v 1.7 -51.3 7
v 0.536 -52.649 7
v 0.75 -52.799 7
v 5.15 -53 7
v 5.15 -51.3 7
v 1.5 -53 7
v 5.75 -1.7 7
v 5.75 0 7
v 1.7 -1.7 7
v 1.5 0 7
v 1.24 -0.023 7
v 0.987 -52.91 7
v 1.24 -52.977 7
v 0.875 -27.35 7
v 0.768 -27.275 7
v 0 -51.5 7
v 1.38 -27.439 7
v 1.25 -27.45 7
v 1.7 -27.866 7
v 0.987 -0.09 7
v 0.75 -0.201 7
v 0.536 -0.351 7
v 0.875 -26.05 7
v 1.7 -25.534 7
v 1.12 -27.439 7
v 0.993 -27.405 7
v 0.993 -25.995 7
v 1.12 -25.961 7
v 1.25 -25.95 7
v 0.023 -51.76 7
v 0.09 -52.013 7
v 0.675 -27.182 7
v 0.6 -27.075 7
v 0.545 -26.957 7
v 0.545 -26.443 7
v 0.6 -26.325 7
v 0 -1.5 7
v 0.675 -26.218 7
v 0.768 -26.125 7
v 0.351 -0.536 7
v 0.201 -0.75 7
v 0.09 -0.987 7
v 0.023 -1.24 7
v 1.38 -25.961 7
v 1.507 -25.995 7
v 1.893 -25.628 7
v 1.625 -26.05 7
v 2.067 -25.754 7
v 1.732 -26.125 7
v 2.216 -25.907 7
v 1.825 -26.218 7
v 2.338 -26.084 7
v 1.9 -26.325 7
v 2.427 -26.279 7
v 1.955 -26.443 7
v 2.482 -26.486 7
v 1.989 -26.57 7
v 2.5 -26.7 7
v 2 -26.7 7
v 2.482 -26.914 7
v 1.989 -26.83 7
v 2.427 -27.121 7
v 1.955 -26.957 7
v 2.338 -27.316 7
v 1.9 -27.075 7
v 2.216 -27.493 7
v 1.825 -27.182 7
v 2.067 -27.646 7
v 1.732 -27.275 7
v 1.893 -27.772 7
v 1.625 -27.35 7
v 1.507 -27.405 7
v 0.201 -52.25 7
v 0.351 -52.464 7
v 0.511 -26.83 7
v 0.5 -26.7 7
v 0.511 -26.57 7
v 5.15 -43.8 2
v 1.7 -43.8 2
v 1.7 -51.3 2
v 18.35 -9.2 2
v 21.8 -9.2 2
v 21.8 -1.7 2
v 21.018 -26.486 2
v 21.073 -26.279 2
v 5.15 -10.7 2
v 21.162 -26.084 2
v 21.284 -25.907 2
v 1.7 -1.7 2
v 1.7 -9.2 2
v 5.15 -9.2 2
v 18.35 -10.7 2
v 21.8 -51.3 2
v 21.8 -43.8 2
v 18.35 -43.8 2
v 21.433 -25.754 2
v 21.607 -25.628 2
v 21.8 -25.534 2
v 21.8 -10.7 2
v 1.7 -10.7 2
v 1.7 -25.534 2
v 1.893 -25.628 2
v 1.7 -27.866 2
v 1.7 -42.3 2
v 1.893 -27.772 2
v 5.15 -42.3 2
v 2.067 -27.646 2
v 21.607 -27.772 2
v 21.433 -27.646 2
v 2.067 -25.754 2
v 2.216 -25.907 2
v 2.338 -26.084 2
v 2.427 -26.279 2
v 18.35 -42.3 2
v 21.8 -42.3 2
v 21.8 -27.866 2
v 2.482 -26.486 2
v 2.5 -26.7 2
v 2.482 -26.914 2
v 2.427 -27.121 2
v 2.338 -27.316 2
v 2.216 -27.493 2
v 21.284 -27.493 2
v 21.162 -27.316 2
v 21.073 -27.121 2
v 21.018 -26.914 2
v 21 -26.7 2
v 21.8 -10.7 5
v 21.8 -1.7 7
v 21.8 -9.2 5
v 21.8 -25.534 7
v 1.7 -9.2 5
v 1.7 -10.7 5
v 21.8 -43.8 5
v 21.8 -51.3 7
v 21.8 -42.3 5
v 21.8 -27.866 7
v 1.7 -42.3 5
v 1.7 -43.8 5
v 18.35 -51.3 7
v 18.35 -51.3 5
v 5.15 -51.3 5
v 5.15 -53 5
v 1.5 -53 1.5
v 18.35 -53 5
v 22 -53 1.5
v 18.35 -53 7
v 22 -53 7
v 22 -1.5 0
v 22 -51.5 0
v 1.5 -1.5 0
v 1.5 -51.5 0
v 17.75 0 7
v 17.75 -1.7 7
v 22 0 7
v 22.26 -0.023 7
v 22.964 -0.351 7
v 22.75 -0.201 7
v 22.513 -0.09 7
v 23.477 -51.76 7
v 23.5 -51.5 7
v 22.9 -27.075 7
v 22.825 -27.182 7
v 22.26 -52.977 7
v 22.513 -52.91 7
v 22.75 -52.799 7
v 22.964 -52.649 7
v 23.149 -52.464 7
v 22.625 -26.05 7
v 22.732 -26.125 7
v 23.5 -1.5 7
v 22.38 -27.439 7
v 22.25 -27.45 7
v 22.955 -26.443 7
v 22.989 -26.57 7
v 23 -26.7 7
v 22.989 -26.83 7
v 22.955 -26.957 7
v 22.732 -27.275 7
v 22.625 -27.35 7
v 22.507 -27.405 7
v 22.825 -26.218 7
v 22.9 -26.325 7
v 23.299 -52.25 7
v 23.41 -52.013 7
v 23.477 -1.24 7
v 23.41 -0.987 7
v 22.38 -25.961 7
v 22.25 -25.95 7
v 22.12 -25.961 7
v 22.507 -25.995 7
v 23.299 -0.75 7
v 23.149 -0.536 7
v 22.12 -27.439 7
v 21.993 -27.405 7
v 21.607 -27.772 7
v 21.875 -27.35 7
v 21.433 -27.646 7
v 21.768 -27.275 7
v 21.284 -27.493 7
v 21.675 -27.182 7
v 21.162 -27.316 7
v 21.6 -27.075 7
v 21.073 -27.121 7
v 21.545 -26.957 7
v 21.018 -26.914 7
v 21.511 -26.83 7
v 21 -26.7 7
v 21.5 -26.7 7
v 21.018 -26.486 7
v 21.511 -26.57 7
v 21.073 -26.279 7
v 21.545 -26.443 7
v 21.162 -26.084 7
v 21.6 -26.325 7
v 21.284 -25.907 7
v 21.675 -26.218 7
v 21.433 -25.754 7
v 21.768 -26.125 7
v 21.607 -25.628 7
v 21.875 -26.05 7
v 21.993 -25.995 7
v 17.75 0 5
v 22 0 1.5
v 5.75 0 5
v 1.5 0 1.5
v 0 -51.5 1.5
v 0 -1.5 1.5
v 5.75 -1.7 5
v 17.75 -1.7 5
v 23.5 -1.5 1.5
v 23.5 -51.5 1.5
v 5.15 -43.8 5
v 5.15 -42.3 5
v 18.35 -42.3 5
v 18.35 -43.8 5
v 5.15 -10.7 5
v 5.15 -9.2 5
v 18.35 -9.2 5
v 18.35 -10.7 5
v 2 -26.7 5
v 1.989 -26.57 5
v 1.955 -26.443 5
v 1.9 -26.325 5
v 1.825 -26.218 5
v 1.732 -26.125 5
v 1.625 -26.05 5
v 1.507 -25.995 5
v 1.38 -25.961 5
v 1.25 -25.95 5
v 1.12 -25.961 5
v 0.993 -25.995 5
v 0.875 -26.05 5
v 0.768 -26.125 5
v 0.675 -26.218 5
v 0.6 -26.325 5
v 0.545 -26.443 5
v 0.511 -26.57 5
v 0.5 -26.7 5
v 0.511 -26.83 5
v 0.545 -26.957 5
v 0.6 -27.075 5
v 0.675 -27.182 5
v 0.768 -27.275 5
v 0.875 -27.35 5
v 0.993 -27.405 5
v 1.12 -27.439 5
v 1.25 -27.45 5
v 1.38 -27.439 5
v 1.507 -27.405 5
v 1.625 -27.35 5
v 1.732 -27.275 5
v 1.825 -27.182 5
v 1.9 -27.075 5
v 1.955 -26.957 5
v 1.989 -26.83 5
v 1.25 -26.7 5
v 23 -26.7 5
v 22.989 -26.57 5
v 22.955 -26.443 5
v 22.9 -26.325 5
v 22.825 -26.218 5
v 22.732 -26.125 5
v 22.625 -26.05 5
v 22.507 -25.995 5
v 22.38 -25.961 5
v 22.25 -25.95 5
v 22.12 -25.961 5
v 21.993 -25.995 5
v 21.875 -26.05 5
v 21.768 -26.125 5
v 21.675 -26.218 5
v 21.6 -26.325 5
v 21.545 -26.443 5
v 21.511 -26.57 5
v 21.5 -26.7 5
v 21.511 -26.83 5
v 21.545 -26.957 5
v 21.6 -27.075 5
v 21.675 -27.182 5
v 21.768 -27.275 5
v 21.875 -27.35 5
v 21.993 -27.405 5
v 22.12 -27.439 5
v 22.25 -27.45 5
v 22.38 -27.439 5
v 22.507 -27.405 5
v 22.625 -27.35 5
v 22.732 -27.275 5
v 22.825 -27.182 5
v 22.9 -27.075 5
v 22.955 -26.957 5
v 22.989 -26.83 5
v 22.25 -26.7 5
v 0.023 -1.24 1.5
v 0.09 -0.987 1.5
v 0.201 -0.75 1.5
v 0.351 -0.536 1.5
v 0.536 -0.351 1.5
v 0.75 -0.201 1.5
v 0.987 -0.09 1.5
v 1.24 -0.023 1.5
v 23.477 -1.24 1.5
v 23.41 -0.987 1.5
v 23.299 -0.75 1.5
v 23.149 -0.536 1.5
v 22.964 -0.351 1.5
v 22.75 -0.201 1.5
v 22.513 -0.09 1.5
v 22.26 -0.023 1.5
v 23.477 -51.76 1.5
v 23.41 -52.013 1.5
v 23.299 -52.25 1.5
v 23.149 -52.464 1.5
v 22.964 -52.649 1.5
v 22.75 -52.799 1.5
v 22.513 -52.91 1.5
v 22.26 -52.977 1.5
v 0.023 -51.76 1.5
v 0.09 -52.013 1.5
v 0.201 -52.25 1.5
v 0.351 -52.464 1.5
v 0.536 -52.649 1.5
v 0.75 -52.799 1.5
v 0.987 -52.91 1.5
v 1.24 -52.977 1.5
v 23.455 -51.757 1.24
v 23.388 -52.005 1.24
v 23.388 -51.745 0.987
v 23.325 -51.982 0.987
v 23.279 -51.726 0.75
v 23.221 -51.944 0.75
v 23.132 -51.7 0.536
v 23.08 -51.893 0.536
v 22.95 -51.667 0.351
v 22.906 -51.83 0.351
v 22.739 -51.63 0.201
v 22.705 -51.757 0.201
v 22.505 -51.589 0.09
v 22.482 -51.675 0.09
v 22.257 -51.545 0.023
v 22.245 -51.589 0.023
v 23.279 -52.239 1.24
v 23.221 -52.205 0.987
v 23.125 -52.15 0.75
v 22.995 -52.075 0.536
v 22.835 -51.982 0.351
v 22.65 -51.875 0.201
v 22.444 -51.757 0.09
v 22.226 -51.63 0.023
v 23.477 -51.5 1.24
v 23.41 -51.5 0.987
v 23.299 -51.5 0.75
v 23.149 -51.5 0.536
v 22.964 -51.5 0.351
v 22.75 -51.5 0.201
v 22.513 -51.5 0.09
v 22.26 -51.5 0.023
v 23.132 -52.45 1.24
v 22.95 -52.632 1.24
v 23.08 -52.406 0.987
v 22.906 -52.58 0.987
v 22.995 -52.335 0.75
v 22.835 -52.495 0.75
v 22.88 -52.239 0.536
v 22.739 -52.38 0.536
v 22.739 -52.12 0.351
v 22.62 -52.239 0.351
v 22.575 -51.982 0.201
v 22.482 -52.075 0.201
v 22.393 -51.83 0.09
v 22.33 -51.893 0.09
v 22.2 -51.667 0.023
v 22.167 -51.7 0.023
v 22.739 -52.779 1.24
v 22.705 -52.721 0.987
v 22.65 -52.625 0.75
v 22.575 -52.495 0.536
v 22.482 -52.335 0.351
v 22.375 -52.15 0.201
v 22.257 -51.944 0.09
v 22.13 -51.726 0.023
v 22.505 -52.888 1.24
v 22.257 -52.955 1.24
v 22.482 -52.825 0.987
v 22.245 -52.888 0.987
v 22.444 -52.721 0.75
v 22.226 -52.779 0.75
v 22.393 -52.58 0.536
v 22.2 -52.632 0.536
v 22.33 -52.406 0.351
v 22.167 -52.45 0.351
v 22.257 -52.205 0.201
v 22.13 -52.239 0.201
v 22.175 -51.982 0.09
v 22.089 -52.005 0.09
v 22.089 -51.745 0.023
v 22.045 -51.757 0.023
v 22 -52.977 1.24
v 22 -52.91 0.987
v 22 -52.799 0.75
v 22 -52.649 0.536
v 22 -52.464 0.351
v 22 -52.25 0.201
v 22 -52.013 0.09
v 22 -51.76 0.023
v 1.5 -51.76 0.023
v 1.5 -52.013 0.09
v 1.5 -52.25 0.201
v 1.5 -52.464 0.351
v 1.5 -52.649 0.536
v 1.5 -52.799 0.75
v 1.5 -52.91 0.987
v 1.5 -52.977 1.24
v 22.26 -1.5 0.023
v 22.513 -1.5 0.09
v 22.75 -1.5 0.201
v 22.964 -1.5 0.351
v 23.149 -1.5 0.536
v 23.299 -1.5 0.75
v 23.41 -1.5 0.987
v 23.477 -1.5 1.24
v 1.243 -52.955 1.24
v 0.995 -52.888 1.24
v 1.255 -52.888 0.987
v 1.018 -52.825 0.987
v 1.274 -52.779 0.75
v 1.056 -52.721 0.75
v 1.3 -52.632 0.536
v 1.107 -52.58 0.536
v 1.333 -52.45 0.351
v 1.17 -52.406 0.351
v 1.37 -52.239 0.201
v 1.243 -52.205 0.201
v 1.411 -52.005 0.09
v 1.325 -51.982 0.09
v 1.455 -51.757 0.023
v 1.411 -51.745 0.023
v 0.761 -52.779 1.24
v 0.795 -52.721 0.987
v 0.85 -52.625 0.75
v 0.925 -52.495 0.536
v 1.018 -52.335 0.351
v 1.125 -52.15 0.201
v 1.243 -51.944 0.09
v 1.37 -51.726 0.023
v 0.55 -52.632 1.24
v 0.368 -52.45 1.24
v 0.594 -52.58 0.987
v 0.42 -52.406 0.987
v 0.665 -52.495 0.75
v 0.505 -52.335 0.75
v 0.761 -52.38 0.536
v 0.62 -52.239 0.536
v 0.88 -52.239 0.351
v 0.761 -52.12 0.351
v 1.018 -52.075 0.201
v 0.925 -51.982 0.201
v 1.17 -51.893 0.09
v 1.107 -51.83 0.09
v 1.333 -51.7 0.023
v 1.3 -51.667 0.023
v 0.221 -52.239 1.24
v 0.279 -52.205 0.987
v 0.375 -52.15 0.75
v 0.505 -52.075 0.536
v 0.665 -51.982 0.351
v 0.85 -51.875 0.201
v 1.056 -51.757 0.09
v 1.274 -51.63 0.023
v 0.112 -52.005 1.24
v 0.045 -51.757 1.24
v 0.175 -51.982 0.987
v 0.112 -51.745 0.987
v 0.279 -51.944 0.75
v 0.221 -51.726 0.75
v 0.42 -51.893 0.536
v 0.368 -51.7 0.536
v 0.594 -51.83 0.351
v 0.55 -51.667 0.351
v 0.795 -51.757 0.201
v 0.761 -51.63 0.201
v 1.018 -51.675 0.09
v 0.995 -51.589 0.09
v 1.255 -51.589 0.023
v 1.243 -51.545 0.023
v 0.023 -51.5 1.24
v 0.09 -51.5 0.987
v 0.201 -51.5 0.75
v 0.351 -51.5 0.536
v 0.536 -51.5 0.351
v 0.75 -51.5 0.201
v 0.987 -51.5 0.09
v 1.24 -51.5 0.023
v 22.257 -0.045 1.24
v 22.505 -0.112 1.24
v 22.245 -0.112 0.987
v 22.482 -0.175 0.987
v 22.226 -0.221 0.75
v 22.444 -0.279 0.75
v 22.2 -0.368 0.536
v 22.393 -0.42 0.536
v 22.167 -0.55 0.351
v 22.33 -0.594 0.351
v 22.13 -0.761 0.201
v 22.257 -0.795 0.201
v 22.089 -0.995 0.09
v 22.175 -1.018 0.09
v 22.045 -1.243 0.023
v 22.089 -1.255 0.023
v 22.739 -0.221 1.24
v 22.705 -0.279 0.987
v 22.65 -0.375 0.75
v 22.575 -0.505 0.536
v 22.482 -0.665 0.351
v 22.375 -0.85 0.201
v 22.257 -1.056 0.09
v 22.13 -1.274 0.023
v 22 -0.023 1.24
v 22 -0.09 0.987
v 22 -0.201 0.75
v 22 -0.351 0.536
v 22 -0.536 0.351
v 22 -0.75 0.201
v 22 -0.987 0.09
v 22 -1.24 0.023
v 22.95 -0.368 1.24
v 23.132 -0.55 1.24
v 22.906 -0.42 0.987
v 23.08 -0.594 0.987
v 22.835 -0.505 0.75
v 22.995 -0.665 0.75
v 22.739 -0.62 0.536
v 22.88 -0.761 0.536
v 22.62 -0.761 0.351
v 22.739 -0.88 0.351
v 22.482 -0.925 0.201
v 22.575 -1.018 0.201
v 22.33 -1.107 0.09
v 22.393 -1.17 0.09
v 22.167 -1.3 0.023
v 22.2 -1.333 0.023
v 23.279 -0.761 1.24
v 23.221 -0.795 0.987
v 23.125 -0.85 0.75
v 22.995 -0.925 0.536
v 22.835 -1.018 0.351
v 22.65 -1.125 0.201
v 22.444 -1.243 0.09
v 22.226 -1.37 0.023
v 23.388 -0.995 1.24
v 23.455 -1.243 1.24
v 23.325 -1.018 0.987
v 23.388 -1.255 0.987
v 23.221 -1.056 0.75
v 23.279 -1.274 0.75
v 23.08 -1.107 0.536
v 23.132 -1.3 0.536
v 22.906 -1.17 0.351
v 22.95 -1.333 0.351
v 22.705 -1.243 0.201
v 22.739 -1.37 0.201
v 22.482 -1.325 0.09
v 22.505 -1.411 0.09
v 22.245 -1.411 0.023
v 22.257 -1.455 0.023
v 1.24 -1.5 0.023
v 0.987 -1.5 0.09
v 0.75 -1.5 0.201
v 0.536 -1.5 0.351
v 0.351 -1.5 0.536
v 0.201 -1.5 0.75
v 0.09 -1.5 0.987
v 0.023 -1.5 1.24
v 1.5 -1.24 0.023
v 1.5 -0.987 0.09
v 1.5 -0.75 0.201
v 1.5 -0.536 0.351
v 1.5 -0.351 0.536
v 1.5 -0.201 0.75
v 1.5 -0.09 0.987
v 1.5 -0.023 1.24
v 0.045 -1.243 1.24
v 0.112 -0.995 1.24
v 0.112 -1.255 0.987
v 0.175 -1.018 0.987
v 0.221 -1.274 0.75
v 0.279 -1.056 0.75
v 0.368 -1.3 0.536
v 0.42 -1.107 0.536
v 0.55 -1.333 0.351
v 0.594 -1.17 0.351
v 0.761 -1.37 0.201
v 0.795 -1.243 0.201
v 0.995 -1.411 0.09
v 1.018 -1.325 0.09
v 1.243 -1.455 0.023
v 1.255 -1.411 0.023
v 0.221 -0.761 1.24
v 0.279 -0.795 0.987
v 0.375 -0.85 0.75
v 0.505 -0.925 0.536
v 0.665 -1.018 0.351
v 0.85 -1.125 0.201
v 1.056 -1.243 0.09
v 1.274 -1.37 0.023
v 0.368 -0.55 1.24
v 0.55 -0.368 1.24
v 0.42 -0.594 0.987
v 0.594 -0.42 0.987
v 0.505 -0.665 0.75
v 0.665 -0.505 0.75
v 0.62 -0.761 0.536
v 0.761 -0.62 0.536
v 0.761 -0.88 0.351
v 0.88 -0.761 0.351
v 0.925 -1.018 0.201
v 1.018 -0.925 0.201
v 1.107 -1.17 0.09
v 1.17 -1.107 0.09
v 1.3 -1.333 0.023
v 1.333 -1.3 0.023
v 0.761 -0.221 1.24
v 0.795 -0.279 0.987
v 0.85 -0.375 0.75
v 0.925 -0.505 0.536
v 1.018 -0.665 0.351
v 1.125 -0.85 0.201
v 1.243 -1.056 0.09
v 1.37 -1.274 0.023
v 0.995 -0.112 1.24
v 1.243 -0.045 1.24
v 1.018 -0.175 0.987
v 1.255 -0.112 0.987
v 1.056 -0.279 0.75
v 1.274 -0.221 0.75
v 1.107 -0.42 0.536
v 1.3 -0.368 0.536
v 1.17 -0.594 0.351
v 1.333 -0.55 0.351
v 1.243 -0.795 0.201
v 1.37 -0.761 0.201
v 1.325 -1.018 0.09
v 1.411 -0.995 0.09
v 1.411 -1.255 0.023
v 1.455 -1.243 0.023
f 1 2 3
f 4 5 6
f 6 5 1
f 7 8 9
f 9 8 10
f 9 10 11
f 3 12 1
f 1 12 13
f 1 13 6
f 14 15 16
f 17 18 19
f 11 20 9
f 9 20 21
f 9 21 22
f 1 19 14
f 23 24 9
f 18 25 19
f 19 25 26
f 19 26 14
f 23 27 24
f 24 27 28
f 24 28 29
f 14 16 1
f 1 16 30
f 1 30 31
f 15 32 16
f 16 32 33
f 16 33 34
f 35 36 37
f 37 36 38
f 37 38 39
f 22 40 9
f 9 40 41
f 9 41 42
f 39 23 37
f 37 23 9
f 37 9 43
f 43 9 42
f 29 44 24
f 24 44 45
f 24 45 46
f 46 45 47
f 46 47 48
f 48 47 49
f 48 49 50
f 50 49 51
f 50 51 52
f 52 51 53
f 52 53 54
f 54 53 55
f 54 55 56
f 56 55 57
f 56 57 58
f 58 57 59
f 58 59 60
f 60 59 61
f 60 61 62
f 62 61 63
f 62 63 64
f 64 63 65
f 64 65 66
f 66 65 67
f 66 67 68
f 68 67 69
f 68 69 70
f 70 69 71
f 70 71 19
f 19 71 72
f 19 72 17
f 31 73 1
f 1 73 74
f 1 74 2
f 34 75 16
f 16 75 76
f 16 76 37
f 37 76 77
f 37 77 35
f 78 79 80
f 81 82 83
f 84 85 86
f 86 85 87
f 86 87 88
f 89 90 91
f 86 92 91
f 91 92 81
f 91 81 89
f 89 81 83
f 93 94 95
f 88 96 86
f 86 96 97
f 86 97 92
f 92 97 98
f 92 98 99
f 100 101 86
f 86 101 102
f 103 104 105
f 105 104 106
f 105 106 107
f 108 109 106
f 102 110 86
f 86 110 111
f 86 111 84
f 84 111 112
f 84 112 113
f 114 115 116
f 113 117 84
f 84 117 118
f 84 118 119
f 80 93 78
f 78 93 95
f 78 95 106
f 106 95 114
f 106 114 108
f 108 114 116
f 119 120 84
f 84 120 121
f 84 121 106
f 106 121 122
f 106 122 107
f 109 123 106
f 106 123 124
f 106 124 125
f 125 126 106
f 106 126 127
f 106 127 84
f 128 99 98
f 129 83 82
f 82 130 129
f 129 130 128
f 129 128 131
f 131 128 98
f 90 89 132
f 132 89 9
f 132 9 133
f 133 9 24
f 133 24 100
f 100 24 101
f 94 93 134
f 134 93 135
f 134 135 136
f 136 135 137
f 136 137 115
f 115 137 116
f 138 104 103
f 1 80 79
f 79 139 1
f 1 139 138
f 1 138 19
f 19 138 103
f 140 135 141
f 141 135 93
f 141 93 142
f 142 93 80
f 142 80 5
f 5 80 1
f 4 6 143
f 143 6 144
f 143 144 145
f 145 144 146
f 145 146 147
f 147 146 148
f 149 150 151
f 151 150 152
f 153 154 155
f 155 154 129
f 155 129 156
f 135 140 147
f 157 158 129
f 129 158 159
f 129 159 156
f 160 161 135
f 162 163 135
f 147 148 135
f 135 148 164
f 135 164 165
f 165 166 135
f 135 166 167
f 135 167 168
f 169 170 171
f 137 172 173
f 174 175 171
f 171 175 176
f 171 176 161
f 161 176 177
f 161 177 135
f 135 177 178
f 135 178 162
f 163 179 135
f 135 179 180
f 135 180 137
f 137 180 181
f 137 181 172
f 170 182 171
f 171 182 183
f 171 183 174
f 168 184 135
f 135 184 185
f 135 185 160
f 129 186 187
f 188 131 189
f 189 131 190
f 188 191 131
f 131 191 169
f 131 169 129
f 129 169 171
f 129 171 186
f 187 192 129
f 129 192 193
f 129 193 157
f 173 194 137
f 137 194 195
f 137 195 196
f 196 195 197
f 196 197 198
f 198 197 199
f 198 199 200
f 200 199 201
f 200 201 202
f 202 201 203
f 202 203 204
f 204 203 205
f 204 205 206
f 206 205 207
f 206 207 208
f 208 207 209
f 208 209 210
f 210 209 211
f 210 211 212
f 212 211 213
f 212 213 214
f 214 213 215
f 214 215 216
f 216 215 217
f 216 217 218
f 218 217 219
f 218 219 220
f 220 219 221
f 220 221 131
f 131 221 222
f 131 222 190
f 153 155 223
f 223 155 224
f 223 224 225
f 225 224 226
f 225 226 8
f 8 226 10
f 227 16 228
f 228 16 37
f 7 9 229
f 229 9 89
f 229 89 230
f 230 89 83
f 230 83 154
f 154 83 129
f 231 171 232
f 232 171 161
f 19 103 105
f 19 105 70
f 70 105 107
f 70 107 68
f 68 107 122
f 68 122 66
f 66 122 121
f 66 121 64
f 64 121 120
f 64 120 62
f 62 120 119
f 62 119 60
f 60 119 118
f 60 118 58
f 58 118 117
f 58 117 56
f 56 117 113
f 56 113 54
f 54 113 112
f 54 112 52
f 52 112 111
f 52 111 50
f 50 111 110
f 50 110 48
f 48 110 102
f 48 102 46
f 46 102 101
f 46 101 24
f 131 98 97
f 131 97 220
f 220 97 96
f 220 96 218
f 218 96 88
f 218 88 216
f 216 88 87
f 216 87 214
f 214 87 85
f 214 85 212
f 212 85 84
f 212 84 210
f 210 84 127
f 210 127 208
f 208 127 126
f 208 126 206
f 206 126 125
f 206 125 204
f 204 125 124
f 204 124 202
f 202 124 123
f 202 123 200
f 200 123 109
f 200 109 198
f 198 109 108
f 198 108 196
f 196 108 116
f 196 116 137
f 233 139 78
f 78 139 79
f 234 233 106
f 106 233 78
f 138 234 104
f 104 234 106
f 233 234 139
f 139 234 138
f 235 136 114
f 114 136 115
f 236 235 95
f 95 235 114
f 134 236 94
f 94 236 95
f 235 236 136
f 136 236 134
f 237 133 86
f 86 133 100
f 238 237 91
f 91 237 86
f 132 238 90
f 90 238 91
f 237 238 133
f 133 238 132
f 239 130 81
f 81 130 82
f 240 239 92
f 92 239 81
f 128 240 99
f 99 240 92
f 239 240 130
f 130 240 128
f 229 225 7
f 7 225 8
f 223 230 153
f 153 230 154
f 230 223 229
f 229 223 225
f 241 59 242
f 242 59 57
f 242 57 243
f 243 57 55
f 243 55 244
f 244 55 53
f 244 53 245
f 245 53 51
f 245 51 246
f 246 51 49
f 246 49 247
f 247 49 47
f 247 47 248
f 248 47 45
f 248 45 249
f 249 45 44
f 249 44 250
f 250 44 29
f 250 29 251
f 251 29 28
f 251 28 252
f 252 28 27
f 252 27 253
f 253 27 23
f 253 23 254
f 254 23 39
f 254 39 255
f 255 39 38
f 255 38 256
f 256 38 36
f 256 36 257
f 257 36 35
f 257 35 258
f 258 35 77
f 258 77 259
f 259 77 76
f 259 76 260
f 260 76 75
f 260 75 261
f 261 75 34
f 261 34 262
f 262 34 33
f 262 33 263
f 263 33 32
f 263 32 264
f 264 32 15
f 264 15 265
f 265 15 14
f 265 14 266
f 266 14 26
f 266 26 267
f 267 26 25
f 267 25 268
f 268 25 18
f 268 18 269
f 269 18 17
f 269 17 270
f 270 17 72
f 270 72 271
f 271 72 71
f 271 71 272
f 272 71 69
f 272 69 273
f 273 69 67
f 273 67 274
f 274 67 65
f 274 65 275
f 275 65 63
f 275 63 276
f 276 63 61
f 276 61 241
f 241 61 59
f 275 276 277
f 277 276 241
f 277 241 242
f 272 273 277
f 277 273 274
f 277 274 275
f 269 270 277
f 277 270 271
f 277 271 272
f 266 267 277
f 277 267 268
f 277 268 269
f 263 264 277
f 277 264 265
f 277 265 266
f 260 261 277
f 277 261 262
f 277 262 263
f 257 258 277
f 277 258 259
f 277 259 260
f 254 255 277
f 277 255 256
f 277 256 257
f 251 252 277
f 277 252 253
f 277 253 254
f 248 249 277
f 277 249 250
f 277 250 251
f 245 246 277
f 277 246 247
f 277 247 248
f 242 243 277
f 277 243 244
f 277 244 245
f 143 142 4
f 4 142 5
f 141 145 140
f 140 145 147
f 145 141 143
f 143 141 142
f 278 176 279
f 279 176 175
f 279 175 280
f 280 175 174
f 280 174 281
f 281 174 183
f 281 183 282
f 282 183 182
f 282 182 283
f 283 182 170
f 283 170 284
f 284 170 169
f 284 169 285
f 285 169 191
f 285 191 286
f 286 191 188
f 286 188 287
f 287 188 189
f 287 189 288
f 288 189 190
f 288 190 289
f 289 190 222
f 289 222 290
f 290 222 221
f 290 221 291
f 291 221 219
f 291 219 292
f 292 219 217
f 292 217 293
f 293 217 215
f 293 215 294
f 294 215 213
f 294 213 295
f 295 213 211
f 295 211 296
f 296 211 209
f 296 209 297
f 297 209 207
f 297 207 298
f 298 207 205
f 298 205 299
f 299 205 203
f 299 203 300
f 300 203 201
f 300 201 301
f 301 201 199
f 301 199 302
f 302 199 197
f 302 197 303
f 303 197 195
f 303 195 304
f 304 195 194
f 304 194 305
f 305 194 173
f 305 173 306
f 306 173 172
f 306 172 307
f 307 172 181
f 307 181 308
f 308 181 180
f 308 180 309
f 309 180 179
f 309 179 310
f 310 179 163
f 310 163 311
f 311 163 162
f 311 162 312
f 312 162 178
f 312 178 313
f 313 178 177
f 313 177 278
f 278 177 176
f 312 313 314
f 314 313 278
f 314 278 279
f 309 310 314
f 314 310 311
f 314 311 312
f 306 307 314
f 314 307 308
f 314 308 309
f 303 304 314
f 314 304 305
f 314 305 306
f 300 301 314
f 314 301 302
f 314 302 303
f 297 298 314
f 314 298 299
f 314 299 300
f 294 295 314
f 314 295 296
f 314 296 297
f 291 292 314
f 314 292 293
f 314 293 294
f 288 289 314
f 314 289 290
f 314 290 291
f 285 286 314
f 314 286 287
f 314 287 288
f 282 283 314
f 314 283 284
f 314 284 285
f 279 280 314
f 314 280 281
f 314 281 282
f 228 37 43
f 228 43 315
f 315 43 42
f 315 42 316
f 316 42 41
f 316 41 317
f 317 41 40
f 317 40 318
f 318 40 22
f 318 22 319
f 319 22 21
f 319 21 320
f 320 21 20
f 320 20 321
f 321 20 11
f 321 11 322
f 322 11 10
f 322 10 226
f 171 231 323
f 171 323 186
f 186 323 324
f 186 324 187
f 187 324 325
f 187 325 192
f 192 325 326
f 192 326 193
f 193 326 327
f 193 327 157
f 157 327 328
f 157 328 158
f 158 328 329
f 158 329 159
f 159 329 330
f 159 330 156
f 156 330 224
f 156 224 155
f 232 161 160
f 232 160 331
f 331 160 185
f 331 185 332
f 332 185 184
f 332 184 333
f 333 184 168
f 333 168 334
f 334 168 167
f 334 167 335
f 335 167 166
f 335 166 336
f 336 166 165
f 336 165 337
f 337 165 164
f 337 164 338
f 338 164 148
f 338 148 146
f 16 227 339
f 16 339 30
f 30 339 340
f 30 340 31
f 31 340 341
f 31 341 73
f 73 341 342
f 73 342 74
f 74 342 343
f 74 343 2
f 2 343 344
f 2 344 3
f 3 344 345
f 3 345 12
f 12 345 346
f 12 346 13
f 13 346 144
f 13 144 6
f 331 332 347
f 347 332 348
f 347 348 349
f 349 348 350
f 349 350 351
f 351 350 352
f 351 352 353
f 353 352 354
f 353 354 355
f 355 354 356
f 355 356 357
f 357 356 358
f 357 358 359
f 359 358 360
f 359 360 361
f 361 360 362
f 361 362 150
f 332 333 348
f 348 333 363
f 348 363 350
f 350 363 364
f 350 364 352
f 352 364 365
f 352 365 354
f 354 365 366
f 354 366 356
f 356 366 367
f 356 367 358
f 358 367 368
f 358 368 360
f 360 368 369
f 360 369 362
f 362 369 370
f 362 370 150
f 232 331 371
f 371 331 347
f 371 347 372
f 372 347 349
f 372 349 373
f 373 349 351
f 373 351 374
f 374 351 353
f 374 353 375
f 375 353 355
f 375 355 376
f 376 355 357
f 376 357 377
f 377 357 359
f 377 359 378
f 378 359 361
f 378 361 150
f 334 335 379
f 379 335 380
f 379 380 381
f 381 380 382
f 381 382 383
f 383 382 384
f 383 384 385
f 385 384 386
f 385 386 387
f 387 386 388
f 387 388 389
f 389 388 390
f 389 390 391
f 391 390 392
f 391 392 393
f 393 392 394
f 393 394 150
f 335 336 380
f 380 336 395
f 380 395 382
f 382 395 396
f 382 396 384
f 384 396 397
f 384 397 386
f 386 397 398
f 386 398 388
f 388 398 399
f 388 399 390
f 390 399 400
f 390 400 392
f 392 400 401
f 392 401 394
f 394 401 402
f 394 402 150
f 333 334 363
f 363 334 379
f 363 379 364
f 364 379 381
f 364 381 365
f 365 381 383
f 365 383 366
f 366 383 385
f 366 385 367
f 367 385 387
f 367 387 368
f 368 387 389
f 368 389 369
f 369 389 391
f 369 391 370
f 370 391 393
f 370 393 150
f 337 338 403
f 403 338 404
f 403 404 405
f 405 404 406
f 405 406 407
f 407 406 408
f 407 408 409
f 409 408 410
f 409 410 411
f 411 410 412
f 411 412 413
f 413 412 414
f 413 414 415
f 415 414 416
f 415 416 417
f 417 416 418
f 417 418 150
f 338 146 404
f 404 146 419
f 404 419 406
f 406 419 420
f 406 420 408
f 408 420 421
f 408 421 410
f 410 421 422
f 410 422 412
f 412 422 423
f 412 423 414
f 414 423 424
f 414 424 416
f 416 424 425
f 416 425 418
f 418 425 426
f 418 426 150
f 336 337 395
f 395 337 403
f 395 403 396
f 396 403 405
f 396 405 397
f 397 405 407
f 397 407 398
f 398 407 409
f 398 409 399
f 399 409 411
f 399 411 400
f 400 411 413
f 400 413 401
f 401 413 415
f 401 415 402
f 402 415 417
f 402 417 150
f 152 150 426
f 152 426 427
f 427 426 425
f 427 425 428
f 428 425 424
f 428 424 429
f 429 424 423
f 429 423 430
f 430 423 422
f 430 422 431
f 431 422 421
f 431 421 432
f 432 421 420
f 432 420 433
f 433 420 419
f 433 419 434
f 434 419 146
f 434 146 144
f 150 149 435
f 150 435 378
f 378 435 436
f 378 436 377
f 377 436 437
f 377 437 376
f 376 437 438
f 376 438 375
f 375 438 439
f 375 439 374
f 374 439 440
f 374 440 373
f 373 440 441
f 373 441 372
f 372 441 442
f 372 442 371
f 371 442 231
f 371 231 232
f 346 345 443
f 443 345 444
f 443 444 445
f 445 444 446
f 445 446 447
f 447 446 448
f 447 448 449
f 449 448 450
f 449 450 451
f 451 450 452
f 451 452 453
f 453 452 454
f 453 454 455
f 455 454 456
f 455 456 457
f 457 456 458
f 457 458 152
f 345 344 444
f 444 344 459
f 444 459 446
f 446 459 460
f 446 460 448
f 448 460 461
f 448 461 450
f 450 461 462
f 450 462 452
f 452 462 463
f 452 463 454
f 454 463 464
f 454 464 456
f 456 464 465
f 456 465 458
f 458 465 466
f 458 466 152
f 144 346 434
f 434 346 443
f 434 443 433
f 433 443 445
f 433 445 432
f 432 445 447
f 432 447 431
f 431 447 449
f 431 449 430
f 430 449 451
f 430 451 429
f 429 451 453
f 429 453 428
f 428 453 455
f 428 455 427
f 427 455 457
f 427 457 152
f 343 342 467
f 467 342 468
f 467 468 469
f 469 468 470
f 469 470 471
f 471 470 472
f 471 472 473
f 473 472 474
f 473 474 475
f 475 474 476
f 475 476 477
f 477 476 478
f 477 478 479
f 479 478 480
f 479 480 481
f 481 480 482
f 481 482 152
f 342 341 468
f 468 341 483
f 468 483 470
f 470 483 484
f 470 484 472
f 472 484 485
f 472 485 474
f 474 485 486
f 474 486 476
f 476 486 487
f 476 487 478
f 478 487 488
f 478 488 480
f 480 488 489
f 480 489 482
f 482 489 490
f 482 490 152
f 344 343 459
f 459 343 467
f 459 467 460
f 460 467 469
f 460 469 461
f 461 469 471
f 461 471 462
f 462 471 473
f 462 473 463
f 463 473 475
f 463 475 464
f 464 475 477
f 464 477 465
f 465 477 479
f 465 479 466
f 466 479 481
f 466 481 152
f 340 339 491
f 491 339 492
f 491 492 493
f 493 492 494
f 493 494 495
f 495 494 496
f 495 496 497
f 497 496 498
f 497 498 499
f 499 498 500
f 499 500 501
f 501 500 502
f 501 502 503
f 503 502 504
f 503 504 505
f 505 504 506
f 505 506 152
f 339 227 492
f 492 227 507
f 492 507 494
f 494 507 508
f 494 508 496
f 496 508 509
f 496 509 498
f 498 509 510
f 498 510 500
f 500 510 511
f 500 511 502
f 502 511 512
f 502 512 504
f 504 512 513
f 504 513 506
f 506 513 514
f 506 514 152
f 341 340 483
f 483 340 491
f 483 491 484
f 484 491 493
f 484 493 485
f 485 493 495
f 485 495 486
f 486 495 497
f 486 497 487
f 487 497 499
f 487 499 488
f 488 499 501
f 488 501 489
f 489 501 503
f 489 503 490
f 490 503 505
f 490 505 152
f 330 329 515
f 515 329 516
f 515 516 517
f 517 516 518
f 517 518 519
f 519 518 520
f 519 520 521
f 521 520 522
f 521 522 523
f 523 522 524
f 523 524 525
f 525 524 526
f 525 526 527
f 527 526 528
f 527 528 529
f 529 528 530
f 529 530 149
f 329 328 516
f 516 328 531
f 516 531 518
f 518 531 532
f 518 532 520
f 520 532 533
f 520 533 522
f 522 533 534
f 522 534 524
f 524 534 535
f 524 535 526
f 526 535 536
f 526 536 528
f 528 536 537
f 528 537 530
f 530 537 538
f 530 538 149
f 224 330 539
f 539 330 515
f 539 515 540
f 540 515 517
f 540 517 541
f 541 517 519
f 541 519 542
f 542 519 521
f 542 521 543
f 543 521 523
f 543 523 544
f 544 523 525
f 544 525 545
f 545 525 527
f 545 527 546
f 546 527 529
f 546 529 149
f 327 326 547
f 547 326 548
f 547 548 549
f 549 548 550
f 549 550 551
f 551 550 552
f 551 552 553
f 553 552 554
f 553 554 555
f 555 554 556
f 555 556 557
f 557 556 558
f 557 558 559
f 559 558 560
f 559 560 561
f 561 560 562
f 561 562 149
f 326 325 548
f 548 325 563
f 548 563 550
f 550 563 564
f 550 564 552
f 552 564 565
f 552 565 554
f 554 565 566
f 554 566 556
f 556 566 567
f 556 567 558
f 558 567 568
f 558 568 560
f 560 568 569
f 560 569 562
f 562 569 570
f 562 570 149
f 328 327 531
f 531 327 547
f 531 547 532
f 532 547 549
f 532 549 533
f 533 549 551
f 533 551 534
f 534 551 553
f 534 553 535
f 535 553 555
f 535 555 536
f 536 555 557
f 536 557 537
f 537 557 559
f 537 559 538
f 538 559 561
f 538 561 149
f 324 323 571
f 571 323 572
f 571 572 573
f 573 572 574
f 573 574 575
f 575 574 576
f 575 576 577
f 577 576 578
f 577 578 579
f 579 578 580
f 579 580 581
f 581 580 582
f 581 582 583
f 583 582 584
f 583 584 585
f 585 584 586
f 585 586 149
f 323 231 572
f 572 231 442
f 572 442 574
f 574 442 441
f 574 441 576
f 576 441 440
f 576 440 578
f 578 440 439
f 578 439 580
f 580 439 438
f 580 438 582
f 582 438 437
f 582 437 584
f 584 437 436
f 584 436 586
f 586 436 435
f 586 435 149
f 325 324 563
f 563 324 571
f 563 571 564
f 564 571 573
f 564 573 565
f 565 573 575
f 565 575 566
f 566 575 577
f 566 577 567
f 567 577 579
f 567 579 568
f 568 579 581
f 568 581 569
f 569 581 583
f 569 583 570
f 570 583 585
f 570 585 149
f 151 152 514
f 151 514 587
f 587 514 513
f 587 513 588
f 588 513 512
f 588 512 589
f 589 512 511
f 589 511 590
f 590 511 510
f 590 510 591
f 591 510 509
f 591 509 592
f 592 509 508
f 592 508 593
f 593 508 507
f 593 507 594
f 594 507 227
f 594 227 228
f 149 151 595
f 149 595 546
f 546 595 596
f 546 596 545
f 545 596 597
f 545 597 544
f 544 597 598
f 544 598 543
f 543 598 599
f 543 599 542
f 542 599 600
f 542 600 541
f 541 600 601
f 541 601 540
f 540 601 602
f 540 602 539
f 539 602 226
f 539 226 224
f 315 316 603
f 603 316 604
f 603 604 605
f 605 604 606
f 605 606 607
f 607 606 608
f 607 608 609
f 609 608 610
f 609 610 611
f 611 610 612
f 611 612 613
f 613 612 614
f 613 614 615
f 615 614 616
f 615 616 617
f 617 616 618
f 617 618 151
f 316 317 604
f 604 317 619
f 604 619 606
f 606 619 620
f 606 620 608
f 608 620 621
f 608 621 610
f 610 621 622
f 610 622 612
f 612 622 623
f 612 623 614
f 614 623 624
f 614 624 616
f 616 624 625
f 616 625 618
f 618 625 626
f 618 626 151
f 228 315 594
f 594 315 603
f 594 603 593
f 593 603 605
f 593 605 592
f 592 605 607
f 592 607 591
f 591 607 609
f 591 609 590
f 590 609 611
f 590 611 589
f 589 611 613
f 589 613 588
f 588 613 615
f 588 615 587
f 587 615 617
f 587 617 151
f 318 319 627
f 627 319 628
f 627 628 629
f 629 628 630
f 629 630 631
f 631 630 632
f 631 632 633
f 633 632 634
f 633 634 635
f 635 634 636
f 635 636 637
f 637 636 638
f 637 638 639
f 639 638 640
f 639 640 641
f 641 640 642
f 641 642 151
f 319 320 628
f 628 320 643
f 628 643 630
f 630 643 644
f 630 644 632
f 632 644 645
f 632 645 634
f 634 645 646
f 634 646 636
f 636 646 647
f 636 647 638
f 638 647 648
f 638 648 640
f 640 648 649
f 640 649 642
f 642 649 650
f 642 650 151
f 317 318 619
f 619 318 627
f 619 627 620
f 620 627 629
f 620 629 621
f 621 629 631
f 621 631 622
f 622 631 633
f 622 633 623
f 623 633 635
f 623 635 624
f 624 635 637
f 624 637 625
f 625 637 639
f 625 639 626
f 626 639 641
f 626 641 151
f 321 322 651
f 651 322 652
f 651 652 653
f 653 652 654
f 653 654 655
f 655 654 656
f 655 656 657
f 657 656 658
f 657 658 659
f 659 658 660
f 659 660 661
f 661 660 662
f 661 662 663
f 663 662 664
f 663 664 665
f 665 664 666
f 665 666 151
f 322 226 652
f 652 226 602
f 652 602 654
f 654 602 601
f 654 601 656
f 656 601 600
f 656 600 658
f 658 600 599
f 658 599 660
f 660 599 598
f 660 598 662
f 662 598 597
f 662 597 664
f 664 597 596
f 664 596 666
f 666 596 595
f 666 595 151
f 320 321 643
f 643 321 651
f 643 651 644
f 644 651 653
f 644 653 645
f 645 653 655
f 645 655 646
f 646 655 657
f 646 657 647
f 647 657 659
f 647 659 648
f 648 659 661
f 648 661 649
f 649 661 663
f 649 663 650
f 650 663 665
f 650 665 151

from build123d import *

# Parameters (mm, degrees)
SKETCH_1_W          = 23.5
SKETCH_1_H          = 53
EXTRUDE_1_DEPTH     = 7
EXTRUDE_2_DEPTH     = 2
SKETCH_2_W          = 3.45
SKETCH_2_H          = 1.5
EXTRUDE_3_DEPTH     = 3
SKETCH_3_R          = 0.75
SKETCH_3_W          = 13.2
SKETCH_3_H          = 1.7
SKETCH_3_W_2        = 12
CUT_EXTRUDE_1_DEPTH = 2
FILLET_1_R          = 1.5
FILLET_2_R          = 1.5


with BuildPart() as part:
    # 草图1 → 凸台-拉伸1 (new body)
    with BuildSketch(Plane.XY):
        with Locations((11.75, -26.5)):
            Rectangle(SKETCH_1_W, SKETCH_1_H)
        with BuildLine():
            Line((21.8, -1.7), (21.8, -25.533809621))
            ThreePointArc((21.8, -25.533809621), (21, -26.7), (21.8, -27.866190379))
            Line((21.8, -27.866190379), (21.8, -51.3))
            Line((21.8, -51.3), (1.7, -51.3))
            Line((1.7, -51.3), (1.7, -27.866190379))
            ThreePointArc((1.7, -27.866190379), (2.5, -26.7), (1.7, -25.533809621))
            Line((1.7, -25.533809621), (1.7, -1.7))
            Line((1.7, -1.7), (21.8, -1.7))
        make_face(mode=Mode.SUBTRACT)
    extrude(amount=EXTRUDE_1_DEPTH)

    # 草图1<2> → 凸台-拉伸2 (add)
    with BuildSketch(Plane.XY):
        with BuildLine():
            Line((1.7, -1.7), (1.7, -25.533809621))
            ThreePointArc((1.7, -25.533809621), (2.280776406, -25.992893219), (2.5, -26.7))
            ThreePointArc((2.5, -26.7), (2.280776406, -27.407106781), (1.7, -27.866190379))
            Line((1.7, -27.866190379), (1.7, -51.3))
            Line((1.7, -51.3), (21.8, -51.3))
            Line((21.8, -51.3), (21.8, -27.866190379))
            ThreePointArc((21.8, -27.866190379), (21, -26.7), (21.8, -25.533809621))
            Line((21.8, -25.533809621), (21.8, -1.7))
            Line((21.8, -1.7), (1.7, -1.7))
        make_face()
    extrude(amount=EXTRUDE_2_DEPTH)

    # 草图2 → 凸台-拉伸3 (add)
    with BuildSketch(Plane.XY.offset(2)):
        with Locations((3.425, -43.05)):
            Rectangle(SKETCH_2_W, SKETCH_2_H)
        with Locations((20.075, -43.05)):
            Rectangle(SKETCH_2_W, SKETCH_2_H)
        with Locations((3.425, -9.95)):
            Rectangle(SKETCH_2_W, SKETCH_2_H)
        with Locations((20.075, -9.95)):
            Rectangle(SKETCH_2_W, SKETCH_2_H)
    extrude(amount=EXTRUDE_3_DEPTH)

    # 草图3 → 切除-拉伸1 (cut)
    with BuildSketch(Plane.XY.offset(7)):
        with Locations((22.25, -26.7)):
            Circle(SKETCH_3_R)
        with Locations((1.25, -26.7)):
            Circle(SKETCH_3_R)
        with Locations((11.75, -52.15)):
            Rectangle(SKETCH_3_W, SKETCH_3_H)
        with Locations((11.75, -0.85)):
            Rectangle(SKETCH_3_W_2, SKETCH_3_H)
    extrude(amount=-CUT_EXTRUDE_1_DEPTH, mode=Mode.SUBTRACT)

    # 圆角1
    fillet_1_edges = [part.edges().sort_by_distance(p)[0] for p in [
        (0, 0, 3.5),
        (23.5, 0, 3.5),
        (23.5, -53, 3.5),
        (0, -53, 3.5),
    ]]
    fillet(fillet_1_edges, radius=FILLET_1_R)

    # 圆角2
    fillet_2_edges = [part.edges().sort_by_distance(p)[0] for p in [
        (0.439339828, -0.439339828, 0),
        (11.75, 0, 0),
        (23.060660172, -0.439339828, 0),
        (23.5, -26.5, 0),
        (23.060660172, -52.560660172, 0),
        (11.75, -53, 0),
        (0.439339828, -52.560660172, 0),
        (0, -26.5, 0),
    ]]
    fillet(fillet_2_edges, radius=FILLET_2_R)


solid = part.part
